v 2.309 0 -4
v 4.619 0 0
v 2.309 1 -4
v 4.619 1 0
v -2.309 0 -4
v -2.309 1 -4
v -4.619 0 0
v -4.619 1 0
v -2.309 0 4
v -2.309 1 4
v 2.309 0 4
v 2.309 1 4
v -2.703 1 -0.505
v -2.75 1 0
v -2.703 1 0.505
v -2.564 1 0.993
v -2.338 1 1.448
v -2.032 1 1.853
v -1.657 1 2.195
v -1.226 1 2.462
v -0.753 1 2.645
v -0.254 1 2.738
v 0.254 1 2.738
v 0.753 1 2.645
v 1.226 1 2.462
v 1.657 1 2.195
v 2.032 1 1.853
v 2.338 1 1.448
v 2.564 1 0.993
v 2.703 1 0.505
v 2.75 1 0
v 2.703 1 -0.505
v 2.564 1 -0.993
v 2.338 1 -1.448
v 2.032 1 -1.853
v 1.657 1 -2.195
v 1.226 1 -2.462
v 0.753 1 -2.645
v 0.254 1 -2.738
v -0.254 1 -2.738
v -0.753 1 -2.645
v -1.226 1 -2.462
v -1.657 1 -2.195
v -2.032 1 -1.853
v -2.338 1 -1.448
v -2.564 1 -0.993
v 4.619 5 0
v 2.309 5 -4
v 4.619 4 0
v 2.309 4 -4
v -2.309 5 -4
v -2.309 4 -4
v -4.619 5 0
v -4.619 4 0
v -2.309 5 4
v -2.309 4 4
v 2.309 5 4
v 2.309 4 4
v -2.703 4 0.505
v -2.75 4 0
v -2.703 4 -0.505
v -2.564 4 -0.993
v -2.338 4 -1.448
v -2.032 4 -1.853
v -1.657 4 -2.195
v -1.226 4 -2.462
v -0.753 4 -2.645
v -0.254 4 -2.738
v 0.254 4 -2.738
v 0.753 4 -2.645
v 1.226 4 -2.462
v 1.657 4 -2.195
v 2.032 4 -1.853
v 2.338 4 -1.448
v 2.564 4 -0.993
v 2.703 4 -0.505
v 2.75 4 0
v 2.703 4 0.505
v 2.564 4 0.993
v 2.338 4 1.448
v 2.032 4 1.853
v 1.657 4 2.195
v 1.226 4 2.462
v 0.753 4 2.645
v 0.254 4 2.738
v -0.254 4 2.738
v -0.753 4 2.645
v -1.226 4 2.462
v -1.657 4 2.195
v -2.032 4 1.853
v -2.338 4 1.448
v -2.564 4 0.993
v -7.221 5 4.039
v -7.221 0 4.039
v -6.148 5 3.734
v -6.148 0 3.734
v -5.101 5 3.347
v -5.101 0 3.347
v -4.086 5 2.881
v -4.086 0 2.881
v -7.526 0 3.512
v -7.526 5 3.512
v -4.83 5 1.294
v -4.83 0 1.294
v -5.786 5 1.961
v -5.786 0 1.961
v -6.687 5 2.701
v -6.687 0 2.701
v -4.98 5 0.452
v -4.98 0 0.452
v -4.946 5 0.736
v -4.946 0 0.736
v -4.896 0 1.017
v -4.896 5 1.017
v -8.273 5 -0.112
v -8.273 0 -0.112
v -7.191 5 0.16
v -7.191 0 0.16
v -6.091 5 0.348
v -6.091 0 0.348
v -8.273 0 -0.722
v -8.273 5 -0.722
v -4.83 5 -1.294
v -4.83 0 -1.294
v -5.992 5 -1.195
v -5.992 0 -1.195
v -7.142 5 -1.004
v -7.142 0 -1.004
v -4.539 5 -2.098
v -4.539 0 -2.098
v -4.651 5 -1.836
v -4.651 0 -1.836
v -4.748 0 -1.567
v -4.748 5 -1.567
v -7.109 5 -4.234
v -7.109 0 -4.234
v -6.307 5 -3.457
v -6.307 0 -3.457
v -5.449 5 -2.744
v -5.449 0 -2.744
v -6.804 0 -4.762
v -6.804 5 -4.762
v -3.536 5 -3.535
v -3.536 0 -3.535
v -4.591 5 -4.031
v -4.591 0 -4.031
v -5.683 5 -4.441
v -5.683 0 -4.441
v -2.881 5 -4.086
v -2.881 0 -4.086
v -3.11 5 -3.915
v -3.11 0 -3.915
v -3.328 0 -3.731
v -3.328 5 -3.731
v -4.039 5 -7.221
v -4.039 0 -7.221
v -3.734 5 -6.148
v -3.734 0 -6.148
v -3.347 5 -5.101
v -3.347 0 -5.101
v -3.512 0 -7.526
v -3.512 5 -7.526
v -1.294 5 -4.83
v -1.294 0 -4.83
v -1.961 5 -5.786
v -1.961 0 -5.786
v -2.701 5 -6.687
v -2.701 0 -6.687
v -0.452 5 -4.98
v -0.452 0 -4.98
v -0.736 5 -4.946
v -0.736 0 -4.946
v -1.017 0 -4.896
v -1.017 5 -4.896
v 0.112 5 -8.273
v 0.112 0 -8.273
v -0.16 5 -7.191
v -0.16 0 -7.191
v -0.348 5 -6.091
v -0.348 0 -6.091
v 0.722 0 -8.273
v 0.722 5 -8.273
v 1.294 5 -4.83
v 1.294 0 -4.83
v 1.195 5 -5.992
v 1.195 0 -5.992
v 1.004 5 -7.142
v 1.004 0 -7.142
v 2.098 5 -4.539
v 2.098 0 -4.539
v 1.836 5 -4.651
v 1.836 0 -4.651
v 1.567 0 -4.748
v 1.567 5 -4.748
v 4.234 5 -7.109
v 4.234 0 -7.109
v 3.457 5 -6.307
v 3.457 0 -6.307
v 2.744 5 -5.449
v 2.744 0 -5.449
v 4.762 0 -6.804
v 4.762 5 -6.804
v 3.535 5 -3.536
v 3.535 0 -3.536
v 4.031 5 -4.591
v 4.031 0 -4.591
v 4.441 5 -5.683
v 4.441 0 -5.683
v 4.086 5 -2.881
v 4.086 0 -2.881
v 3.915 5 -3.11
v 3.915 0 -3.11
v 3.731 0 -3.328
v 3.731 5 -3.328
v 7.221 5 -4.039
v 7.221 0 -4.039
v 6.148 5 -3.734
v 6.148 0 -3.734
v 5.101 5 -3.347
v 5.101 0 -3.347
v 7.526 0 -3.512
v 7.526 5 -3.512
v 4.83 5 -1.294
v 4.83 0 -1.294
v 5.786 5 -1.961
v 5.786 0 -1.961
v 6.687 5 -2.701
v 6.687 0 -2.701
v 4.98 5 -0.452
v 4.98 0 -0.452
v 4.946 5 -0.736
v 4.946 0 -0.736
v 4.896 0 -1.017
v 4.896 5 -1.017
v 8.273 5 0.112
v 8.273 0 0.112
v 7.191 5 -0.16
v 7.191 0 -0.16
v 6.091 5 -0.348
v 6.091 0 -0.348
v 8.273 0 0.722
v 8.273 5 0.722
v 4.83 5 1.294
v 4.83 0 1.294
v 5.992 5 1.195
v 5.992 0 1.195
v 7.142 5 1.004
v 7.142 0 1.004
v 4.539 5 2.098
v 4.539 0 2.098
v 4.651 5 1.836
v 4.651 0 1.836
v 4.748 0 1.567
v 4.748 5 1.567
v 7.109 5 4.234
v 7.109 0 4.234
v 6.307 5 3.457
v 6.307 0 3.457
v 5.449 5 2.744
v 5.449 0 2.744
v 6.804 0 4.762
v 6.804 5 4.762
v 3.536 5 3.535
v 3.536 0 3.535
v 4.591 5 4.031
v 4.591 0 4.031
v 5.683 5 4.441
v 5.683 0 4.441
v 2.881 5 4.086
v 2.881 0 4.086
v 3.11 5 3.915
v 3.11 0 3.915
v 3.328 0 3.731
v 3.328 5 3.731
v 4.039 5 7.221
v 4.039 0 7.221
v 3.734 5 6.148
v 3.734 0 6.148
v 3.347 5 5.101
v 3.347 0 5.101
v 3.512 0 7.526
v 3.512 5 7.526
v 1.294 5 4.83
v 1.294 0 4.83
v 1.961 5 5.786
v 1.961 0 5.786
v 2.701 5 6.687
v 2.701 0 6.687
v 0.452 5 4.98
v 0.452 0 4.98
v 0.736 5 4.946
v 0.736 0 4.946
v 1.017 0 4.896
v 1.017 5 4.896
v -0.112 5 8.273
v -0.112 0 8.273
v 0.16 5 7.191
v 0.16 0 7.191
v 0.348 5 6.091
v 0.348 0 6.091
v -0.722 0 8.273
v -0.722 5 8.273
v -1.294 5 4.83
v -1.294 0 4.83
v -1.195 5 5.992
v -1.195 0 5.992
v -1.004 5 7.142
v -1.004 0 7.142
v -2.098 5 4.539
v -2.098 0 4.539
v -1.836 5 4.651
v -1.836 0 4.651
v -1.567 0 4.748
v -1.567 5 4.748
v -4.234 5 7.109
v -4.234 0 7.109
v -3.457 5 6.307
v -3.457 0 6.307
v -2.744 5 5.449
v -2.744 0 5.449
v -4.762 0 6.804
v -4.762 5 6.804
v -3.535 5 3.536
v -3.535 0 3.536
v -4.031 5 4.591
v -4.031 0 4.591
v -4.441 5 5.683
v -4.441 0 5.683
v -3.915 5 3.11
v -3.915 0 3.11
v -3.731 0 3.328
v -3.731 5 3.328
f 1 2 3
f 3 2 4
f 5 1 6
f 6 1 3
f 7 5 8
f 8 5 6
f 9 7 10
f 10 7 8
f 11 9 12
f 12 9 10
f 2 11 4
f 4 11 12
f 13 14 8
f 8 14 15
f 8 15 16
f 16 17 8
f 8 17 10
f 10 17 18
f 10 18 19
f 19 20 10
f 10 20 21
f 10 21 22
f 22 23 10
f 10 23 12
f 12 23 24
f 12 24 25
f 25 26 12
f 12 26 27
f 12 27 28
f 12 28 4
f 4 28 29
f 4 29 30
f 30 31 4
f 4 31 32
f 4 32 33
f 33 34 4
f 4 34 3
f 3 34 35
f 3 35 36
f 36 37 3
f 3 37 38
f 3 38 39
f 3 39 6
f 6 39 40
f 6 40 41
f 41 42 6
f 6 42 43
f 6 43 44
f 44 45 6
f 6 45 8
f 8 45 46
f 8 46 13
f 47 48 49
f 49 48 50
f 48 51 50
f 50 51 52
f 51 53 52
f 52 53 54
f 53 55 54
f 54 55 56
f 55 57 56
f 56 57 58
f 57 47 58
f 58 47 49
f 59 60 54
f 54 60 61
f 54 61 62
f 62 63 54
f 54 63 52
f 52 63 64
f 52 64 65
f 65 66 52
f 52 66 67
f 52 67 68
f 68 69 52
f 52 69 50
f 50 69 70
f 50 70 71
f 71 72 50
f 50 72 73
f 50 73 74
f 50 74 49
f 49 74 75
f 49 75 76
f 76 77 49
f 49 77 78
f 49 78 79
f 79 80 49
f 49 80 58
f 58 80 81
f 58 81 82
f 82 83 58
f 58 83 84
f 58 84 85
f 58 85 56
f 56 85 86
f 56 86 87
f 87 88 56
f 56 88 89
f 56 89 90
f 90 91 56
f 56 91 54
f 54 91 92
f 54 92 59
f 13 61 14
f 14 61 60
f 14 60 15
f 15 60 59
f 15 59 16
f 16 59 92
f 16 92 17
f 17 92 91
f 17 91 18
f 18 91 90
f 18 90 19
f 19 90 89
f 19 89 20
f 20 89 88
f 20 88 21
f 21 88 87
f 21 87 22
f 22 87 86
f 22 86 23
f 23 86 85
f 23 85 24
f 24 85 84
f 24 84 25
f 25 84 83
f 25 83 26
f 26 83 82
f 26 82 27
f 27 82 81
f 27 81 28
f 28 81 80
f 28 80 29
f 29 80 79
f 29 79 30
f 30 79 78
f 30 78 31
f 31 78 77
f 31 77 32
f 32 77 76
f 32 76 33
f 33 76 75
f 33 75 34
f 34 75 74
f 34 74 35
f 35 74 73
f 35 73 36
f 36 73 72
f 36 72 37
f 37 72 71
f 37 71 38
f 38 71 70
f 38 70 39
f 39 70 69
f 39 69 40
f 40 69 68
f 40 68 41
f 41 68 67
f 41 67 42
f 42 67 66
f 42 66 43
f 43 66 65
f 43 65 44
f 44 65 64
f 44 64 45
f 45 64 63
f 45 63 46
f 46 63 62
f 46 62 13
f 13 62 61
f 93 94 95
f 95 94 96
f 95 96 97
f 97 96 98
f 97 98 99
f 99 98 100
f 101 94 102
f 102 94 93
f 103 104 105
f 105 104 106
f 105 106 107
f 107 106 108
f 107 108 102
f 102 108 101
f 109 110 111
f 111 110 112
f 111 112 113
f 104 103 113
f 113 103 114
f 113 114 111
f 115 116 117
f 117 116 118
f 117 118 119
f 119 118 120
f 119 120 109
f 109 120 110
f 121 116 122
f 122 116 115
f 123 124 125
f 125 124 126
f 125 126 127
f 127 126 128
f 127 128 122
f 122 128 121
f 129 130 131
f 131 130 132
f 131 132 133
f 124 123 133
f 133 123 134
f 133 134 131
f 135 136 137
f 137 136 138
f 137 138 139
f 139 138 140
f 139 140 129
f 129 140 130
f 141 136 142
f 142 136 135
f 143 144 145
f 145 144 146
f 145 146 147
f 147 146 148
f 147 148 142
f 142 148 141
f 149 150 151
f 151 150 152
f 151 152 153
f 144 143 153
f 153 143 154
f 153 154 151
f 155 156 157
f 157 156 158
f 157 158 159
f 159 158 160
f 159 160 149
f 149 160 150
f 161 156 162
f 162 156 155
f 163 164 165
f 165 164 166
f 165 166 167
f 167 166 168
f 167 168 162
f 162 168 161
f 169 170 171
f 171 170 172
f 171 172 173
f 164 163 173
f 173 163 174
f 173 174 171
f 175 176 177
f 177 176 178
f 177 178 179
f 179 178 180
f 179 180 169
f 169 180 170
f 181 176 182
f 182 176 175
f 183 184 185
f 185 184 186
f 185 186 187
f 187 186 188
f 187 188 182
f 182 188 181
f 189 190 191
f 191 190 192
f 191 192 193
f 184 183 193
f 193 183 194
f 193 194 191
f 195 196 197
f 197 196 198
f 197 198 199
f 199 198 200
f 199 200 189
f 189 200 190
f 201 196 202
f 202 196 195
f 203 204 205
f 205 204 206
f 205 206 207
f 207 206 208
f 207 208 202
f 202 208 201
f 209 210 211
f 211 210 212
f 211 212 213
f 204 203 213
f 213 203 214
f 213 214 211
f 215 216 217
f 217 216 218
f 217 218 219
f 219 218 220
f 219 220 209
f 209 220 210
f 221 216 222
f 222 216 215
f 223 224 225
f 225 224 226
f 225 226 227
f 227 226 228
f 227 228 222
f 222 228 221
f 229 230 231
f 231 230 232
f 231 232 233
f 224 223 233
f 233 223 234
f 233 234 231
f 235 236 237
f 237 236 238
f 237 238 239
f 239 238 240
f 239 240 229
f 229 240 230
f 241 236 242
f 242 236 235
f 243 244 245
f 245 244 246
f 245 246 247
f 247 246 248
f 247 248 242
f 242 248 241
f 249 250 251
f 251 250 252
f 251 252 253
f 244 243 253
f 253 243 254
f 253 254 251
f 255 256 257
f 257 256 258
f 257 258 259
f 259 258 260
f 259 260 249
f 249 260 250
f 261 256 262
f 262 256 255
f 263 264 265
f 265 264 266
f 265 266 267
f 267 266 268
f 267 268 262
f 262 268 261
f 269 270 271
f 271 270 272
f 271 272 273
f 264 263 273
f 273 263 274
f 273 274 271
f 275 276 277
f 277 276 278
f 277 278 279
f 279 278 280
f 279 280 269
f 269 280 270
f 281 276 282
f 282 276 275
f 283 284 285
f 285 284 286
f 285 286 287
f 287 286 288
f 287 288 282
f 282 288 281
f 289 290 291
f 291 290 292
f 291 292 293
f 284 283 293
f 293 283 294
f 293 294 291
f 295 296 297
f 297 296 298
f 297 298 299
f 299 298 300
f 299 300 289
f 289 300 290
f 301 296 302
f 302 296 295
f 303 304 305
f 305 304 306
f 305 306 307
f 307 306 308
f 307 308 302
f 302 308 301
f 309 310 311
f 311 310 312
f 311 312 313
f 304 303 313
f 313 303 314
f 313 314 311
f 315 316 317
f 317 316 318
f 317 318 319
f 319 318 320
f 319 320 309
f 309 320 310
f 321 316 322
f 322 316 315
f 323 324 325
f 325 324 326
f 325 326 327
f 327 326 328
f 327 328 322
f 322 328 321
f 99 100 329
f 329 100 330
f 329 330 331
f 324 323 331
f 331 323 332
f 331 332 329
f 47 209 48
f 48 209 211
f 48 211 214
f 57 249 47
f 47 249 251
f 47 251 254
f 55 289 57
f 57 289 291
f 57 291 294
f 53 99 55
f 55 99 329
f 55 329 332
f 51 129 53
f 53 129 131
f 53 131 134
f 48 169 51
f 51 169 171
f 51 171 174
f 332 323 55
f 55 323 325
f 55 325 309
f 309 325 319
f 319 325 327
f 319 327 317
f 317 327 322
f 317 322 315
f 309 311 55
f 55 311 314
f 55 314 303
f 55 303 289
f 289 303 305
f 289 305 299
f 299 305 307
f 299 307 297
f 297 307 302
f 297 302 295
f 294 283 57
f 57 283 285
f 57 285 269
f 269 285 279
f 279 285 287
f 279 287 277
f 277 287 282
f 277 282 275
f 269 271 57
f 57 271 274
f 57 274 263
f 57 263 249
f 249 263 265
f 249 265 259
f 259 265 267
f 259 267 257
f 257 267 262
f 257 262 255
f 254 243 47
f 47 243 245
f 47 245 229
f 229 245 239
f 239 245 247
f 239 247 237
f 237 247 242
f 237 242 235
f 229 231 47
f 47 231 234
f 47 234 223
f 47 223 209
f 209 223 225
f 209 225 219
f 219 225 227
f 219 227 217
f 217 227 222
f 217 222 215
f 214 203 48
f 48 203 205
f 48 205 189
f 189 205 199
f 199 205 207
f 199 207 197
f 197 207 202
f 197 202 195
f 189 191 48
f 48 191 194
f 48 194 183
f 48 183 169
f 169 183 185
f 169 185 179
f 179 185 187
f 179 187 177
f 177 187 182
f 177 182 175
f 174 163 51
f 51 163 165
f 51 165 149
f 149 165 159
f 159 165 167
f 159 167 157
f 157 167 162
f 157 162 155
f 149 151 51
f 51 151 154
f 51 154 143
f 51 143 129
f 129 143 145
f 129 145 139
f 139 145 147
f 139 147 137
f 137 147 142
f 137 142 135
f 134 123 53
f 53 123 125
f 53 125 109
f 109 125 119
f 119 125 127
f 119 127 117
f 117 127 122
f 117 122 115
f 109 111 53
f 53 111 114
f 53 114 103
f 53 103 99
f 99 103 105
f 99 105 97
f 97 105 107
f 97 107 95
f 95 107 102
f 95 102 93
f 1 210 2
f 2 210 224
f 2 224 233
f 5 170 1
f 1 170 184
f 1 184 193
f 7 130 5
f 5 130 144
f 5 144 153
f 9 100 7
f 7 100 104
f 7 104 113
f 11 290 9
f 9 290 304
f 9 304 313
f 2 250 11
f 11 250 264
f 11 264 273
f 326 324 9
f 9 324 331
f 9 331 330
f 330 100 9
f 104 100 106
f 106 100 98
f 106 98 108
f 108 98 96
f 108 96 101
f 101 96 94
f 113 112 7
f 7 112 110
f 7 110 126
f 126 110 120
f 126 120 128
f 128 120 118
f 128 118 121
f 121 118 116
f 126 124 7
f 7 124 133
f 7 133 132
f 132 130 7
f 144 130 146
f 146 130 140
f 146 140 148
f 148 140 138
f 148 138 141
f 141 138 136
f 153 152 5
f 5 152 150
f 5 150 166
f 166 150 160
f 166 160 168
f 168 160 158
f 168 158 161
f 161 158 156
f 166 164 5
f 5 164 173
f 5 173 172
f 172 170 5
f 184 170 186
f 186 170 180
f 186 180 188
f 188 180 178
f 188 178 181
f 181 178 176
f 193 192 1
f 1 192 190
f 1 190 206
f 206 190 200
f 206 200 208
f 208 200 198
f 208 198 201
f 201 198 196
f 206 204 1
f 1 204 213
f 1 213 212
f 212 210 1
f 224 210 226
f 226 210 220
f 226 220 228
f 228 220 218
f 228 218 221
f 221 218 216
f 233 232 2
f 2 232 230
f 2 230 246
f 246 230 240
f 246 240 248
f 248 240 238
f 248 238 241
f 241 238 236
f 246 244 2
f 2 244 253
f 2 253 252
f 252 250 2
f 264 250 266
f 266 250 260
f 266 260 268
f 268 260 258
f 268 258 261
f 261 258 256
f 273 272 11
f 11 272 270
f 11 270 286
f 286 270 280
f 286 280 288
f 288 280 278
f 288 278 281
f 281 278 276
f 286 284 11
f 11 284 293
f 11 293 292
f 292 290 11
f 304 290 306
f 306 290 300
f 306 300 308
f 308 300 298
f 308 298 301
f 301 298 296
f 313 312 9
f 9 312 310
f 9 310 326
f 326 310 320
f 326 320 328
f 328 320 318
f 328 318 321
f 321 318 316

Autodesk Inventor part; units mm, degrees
ref_plane "YZ Plane" through (0, 0, 0) normal (1, 0, 0) x (0, 1, 0)
ref_plane "XZ Plane" through (0, 0, 0) normal (0, 1, 0) x (-1, 0, 0)
ref_plane "XY Plane" through (0, 0, 0) normal (0, 0, 1) x (1, 0, 0)
sketch "Sketch1" plane through (0, 0, 0) normal (0, 1, 0) x (-1, 0, 0)
  circle A0 centre (0, 0) radius 5
  line L0 (5, 0) -> (9.8774, -1.3309) construction
  arc A1 (8.2733, -0.1123) -> (3.8334, 0.4702) centre (4.1778, -14.1163) ccw
  line L1 (9.8774, -1.3309) -> (5, 0) construction
  arc A2 (3.8334, -1.3043) -> (8.2733, -0.7218) centre (4.1778, 13.2822) ccw
  line L2 (3.8879, -2.2603) -> (3.8879, -0.5721)
  line L3 (3.8879, -0.262) -> (3.8879, 1.4262)
  line L4 (0.1623, -0.03) -> (0.1623, 0.0204)
  circle A3 centre (0, 0) radius 2.75
  line L5 (8.2733, -0.7218) -> (8.2733, -0.1123)
  arc A4 (3.972, 0.7871) -> (7.5258, 3.5116) centre (-3.023, 13.5916) ccw
  line L6 (7.5258, 3.5116) -> (7.2211, 4.0394)
  arc A5 (7.2211, 4.0394) -> (3.0847, 2.3239) centre (10.6762, -10.1362) ccw
  arc A6 (3.0463, 2.6677) -> (4.7618, 6.804) centre (-9.4138, 10.2592) ccw
  line L7 (4.7618, 6.804) -> (4.2339, 7.1088)
  arc A7 (4.2339, 7.1088) -> (1.5095, 3.5549) centre (14.314, -3.4401) ccw
  arc A8 (1.3043, 3.8334) -> (0.7218, 8.2733) centre (-13.2822, 4.1778) ccw
  line L8 (0.7218, 8.2733) -> (0.1123, 8.2733)
  arc A9 (0.1123, 8.2733) -> (-0.4702, 3.8334) centre (14.1163, 4.1778) ccw
  arc A10 (-0.7871, 3.972) -> (-3.5116, 7.5258) centre (-13.5916, -3.023) ccw
  line L9 (-3.5116, 7.5258) -> (-4.0394, 7.2211)
  arc A11 (-4.0394, 7.2211) -> (-2.3239, 3.0847) centre (10.1362, 10.6762) ccw
  arc A12 (-2.6677, 3.0463) -> (-6.804, 4.7618) centre (-10.2592, -9.4138) ccw
  line L10 (-6.804, 4.7618) -> (-7.1088, 4.2339)
  arc A13 (-7.1088, 4.2339) -> (-3.5549, 1.5095) centre (3.4401, 14.314) ccw
  arc A14 (-3.8334, 1.3043) -> (-8.2733, 0.7218) centre (-4.1778, -13.2822) ccw
  line L11 (-8.2733, 0.7218) -> (-8.2733, 0.1123)
  arc A15 (-8.2733, 0.1123) -> (-3.8334, -0.4702) centre (-4.1778, 14.1163) ccw
  arc A16 (-3.972, -0.7871) -> (-7.5258, -3.5116) centre (3.023, -13.5916) ccw
  line L12 (-7.5258, -3.5116) -> (-7.2211, -4.0394)
  arc A17 (-7.2211, -4.0394) -> (-3.0847, -2.3239) centre (-10.6762, 10.1362) ccw
  arc A18 (-3.0463, -2.6677) -> (-4.7618, -6.804) centre (9.4138, -10.2592) ccw
  line L13 (-4.7618, -6.804) -> (-4.2339, -7.1088)
  arc A19 (-4.2339, -7.1088) -> (-1.5095, -3.5549) centre (-14.314, 3.4401) ccw
  arc A20 (-1.3043, -3.8334) -> (-0.7218, -8.2733) centre (13.2822, -4.1778) ccw
  line L14 (-0.7218, -8.2733) -> (-0.1123, -8.2733)
  arc A21 (-0.1123, -8.2733) -> (0.4702, -3.8334) centre (-14.1163, -4.1778) ccw
  arc A22 (0.7871, -3.972) -> (3.5116, -7.5258) centre (13.5916, 3.023) ccw
  line L15 (3.5116, -7.5258) -> (4.0394, -7.2211)
  arc A23 (4.0394, -7.2211) -> (2.3239, -3.0847) centre (-10.1362, -10.6762) ccw
  arc A24 (2.6677, -3.0463) -> (6.804, -4.7618) centre (10.2592, 9.4138) ccw
  line L16 (6.804, -4.7618) -> (7.1088, -4.2339)
  arc A25 (7.1088, -4.2339) -> (3.5549, -1.5095) centre (-3.4401, -14.314) ccw
  point P0 (4.8297, -1.2938)
  point P1 (4.9795, 0.4523)
  point P2 (4.0863, 2.8814)
  point P3 (4.8296, 1.2944)
  point P4 (2.0981, 4.5385)
  point P5 (3.5353, 3.5357)
  point P6 (-0.4523, 4.9795)
  point P7 (1.2938, 4.8297)
  point P8 (-2.8814, 4.0863)
  point P9 (-1.2944, 4.8296)
  point P10 (-4.5385, 2.0981)
  point P11 (-3.5357, 3.5353)
  point P12 (-4.9795, -0.4523)
  point P13 (-4.8297, 1.2938)
  point P14 (-4.0863, -2.8814)
  point P15 (-4.8296, -1.2944)
  point P16 (-2.0981, -4.5385)
  point P17 (-3.5353, -3.5357)
  point P18 (0.4523, -4.9795)
  point P19 (-1.2938, -4.8297)
  point P20 (2.8814, -4.0863)
  point P21 (1.2944, -4.8296)
  point P22 (4.5385, -2.0981)
  point P23 (3.5357, -3.5353)
  dimension "d0" = 10
  dimension "d5" = 5.5
  dimension "d14" = 360
extrude "Extrusion1" add sketch "Sketch1" along normal blind 5
sketch "Sketch2" plane through (0, 5, 0) normal (0, 1, 0) x (1, 0, 0)
  line L0 (-2.3094, 4) -> (2.3094, 4)
  line L1 (2.3094, 4) -> (4.6188, 0)
  line L2 (4.6188, 0) -> (2.3094, -4)
  line L3 (2.3094, -4) -> (-2.3094, -4)
  line L4 (-2.3094, -4) -> (-4.6188, 0)
  line L5 (-4.6188, 0) -> (-2.3094, 4)
  line L6 (0, 0) -> (-6.3613, 0)
  dimension "d8" = 8
extrude "Extrusion2" cut sketch "Sketch2" against normal blind 1
ref_plane "Work Plane1" through (0, 2.5, 0) normal (0, 1, 0) x (1, 0, 0)
mirror "Mirror1" about plane through (0, 2.5, 0) normal (0, 1, 0) of "Extrusion2"
properties part number "JointFixeSmallr"
